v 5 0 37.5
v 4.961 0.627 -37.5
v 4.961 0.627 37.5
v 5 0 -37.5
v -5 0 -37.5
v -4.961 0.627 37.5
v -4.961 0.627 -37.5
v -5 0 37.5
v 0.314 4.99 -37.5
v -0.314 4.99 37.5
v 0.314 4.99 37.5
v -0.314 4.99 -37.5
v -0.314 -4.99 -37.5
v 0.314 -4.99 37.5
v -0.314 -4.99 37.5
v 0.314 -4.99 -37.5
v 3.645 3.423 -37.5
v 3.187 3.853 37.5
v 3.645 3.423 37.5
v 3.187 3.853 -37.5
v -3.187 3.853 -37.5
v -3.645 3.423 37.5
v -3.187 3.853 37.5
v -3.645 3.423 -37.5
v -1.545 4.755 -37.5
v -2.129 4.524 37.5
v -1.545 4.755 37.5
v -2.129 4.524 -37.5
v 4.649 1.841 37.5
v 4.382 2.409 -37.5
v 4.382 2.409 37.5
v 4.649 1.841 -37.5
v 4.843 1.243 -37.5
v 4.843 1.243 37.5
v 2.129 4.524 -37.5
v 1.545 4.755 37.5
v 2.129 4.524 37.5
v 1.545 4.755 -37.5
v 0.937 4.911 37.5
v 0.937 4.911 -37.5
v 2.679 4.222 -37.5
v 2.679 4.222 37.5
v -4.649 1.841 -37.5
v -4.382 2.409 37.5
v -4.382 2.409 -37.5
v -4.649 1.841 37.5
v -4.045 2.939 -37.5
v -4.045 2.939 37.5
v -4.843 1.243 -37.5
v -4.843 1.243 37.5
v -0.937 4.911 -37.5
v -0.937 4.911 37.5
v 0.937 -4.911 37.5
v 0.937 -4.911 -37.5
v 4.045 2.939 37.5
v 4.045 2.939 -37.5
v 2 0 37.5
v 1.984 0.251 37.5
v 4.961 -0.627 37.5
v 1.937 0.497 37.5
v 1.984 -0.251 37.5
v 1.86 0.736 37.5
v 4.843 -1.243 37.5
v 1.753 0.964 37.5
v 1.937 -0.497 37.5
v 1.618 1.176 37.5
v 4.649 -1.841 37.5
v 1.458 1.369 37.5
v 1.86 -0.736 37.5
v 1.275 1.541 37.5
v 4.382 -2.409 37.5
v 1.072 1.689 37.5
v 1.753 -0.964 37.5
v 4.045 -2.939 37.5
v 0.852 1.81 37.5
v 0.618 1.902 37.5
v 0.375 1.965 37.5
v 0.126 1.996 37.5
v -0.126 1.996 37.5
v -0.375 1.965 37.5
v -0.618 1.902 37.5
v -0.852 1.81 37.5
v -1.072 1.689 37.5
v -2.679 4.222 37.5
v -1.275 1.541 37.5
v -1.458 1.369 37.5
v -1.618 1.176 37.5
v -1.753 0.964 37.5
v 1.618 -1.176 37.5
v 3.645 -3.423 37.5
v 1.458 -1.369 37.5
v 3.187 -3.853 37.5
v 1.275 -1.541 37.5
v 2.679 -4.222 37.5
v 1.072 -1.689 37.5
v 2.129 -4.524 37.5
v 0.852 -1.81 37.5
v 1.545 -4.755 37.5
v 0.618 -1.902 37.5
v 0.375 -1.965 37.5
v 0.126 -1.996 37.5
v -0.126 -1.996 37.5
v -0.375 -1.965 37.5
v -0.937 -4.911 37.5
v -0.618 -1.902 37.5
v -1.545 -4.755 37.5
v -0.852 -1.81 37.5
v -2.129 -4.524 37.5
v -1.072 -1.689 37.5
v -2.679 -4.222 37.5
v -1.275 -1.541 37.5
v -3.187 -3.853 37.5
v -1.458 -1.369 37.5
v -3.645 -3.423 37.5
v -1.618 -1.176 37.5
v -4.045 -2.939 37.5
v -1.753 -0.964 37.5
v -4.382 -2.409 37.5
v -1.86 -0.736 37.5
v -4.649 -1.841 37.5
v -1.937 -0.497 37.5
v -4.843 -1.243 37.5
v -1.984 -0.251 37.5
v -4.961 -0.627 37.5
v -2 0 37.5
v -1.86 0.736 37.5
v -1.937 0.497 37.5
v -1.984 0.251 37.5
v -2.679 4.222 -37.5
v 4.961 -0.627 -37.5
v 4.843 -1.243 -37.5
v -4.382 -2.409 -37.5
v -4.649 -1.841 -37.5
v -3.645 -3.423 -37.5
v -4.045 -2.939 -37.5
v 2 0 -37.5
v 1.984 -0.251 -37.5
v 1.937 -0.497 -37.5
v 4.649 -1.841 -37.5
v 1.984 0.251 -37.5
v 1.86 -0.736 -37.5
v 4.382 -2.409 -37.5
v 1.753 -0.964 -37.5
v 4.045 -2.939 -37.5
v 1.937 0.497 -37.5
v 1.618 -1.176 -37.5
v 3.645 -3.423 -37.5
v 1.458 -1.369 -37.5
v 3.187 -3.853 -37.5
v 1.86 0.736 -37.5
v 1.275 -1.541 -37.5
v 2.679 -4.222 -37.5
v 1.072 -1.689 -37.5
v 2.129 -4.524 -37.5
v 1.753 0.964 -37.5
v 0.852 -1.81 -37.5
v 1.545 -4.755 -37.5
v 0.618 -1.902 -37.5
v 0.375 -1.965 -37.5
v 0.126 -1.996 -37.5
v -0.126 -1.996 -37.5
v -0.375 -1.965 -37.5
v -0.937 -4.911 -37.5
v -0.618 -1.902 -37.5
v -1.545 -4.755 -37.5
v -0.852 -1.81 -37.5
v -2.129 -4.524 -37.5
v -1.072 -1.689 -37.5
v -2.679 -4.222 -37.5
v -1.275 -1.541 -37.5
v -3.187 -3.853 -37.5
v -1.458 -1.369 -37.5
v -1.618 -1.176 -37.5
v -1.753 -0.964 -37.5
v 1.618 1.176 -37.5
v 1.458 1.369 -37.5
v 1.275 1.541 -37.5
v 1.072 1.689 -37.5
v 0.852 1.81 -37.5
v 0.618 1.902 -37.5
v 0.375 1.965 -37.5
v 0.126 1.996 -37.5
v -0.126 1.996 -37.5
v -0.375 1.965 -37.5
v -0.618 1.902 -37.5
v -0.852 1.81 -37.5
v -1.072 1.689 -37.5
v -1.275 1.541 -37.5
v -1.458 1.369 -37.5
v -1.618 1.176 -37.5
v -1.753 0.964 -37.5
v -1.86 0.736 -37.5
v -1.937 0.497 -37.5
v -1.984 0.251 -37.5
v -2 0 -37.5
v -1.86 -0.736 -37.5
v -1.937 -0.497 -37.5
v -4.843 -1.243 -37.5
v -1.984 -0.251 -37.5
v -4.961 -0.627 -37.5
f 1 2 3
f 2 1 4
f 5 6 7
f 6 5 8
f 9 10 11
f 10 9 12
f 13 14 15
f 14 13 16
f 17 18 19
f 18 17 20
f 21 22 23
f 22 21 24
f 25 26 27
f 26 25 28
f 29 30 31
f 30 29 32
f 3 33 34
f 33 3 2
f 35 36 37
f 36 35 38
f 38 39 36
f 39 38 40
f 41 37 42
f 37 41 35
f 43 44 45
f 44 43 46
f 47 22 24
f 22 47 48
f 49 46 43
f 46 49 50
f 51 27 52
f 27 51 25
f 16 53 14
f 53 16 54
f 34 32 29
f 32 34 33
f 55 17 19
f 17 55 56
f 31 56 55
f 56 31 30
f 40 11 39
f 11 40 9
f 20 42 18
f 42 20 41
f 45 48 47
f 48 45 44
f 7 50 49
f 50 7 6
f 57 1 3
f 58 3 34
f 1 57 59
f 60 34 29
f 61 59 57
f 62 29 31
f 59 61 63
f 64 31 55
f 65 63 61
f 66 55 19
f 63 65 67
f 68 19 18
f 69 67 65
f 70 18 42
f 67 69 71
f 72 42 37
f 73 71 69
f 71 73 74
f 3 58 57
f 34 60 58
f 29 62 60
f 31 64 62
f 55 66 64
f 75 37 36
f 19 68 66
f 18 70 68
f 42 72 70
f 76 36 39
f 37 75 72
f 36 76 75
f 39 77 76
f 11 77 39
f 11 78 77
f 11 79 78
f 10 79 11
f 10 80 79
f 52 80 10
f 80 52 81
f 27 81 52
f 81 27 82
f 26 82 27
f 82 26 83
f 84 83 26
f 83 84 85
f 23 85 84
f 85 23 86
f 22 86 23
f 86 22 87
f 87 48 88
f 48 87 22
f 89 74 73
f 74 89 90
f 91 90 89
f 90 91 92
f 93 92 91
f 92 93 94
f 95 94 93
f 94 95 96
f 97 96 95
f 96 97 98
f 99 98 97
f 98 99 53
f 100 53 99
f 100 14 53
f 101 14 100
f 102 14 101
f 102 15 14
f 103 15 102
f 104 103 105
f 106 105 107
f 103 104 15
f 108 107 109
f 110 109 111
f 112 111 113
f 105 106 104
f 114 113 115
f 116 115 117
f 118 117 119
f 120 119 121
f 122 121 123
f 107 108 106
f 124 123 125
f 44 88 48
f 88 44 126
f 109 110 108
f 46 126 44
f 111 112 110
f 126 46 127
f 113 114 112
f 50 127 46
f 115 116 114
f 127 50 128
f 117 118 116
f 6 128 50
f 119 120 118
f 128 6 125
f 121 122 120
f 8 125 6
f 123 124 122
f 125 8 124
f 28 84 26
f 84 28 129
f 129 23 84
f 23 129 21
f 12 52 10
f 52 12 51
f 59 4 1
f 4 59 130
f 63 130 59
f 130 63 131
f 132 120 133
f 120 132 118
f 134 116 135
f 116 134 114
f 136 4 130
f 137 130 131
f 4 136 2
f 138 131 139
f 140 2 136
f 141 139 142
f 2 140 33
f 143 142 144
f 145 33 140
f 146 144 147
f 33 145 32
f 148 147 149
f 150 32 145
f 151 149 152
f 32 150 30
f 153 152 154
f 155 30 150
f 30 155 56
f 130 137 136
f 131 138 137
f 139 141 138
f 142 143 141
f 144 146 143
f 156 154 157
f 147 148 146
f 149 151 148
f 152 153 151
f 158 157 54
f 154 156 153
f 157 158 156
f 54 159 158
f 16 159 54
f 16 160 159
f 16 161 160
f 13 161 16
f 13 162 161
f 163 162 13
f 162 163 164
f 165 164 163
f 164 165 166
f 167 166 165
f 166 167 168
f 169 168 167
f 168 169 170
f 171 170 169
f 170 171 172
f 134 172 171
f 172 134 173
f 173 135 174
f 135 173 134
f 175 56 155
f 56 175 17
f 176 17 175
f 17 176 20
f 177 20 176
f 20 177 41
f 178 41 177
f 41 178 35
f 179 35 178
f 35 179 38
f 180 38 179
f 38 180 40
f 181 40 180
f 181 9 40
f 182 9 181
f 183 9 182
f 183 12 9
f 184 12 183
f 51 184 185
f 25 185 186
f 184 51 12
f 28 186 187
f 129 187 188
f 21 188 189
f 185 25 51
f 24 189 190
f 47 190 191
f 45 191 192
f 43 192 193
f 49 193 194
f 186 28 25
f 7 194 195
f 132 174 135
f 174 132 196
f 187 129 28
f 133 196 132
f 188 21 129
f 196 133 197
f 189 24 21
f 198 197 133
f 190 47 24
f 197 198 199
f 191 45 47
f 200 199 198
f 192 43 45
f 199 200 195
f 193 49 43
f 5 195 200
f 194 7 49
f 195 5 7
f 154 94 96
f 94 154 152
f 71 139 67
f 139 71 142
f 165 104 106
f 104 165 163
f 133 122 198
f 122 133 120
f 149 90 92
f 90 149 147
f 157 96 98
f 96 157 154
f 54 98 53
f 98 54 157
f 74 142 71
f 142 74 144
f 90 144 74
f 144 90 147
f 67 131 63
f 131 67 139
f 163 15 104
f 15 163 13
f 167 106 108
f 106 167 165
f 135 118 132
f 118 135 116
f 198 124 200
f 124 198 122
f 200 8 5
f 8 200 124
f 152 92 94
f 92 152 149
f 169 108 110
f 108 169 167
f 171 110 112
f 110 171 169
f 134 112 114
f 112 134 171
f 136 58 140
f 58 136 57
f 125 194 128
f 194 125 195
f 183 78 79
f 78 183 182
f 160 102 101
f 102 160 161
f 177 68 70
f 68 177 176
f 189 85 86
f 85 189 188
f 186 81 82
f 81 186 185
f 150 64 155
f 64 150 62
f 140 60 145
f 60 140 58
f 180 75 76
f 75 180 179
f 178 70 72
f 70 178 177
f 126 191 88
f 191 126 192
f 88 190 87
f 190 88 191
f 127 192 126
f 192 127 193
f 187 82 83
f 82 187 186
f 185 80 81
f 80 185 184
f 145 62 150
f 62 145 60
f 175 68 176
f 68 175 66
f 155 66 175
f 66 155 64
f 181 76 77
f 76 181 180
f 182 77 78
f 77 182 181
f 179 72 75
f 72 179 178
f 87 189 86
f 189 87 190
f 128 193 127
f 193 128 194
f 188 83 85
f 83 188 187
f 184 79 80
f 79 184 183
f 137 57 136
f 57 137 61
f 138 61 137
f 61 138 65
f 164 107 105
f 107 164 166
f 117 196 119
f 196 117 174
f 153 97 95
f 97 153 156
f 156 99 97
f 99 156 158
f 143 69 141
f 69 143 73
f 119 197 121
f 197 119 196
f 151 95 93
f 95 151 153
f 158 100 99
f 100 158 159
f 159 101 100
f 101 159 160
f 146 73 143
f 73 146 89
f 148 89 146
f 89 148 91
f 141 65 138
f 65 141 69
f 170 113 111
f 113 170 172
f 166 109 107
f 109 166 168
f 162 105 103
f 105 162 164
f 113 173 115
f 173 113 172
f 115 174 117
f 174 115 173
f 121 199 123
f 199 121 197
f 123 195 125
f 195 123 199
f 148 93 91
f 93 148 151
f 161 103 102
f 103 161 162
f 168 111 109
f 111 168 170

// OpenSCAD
$fn = 50;


difference() {
	union() {
		translate(v = [0, 0, -37.5000000000]) {
			cylinder(h = 75, r = 5.0000000000);
		}
	}
	union() {
		translate(v = [0, 0, -100.0000000000]) {
			cylinder(h = 200, r = 2);
		}
	}
}
